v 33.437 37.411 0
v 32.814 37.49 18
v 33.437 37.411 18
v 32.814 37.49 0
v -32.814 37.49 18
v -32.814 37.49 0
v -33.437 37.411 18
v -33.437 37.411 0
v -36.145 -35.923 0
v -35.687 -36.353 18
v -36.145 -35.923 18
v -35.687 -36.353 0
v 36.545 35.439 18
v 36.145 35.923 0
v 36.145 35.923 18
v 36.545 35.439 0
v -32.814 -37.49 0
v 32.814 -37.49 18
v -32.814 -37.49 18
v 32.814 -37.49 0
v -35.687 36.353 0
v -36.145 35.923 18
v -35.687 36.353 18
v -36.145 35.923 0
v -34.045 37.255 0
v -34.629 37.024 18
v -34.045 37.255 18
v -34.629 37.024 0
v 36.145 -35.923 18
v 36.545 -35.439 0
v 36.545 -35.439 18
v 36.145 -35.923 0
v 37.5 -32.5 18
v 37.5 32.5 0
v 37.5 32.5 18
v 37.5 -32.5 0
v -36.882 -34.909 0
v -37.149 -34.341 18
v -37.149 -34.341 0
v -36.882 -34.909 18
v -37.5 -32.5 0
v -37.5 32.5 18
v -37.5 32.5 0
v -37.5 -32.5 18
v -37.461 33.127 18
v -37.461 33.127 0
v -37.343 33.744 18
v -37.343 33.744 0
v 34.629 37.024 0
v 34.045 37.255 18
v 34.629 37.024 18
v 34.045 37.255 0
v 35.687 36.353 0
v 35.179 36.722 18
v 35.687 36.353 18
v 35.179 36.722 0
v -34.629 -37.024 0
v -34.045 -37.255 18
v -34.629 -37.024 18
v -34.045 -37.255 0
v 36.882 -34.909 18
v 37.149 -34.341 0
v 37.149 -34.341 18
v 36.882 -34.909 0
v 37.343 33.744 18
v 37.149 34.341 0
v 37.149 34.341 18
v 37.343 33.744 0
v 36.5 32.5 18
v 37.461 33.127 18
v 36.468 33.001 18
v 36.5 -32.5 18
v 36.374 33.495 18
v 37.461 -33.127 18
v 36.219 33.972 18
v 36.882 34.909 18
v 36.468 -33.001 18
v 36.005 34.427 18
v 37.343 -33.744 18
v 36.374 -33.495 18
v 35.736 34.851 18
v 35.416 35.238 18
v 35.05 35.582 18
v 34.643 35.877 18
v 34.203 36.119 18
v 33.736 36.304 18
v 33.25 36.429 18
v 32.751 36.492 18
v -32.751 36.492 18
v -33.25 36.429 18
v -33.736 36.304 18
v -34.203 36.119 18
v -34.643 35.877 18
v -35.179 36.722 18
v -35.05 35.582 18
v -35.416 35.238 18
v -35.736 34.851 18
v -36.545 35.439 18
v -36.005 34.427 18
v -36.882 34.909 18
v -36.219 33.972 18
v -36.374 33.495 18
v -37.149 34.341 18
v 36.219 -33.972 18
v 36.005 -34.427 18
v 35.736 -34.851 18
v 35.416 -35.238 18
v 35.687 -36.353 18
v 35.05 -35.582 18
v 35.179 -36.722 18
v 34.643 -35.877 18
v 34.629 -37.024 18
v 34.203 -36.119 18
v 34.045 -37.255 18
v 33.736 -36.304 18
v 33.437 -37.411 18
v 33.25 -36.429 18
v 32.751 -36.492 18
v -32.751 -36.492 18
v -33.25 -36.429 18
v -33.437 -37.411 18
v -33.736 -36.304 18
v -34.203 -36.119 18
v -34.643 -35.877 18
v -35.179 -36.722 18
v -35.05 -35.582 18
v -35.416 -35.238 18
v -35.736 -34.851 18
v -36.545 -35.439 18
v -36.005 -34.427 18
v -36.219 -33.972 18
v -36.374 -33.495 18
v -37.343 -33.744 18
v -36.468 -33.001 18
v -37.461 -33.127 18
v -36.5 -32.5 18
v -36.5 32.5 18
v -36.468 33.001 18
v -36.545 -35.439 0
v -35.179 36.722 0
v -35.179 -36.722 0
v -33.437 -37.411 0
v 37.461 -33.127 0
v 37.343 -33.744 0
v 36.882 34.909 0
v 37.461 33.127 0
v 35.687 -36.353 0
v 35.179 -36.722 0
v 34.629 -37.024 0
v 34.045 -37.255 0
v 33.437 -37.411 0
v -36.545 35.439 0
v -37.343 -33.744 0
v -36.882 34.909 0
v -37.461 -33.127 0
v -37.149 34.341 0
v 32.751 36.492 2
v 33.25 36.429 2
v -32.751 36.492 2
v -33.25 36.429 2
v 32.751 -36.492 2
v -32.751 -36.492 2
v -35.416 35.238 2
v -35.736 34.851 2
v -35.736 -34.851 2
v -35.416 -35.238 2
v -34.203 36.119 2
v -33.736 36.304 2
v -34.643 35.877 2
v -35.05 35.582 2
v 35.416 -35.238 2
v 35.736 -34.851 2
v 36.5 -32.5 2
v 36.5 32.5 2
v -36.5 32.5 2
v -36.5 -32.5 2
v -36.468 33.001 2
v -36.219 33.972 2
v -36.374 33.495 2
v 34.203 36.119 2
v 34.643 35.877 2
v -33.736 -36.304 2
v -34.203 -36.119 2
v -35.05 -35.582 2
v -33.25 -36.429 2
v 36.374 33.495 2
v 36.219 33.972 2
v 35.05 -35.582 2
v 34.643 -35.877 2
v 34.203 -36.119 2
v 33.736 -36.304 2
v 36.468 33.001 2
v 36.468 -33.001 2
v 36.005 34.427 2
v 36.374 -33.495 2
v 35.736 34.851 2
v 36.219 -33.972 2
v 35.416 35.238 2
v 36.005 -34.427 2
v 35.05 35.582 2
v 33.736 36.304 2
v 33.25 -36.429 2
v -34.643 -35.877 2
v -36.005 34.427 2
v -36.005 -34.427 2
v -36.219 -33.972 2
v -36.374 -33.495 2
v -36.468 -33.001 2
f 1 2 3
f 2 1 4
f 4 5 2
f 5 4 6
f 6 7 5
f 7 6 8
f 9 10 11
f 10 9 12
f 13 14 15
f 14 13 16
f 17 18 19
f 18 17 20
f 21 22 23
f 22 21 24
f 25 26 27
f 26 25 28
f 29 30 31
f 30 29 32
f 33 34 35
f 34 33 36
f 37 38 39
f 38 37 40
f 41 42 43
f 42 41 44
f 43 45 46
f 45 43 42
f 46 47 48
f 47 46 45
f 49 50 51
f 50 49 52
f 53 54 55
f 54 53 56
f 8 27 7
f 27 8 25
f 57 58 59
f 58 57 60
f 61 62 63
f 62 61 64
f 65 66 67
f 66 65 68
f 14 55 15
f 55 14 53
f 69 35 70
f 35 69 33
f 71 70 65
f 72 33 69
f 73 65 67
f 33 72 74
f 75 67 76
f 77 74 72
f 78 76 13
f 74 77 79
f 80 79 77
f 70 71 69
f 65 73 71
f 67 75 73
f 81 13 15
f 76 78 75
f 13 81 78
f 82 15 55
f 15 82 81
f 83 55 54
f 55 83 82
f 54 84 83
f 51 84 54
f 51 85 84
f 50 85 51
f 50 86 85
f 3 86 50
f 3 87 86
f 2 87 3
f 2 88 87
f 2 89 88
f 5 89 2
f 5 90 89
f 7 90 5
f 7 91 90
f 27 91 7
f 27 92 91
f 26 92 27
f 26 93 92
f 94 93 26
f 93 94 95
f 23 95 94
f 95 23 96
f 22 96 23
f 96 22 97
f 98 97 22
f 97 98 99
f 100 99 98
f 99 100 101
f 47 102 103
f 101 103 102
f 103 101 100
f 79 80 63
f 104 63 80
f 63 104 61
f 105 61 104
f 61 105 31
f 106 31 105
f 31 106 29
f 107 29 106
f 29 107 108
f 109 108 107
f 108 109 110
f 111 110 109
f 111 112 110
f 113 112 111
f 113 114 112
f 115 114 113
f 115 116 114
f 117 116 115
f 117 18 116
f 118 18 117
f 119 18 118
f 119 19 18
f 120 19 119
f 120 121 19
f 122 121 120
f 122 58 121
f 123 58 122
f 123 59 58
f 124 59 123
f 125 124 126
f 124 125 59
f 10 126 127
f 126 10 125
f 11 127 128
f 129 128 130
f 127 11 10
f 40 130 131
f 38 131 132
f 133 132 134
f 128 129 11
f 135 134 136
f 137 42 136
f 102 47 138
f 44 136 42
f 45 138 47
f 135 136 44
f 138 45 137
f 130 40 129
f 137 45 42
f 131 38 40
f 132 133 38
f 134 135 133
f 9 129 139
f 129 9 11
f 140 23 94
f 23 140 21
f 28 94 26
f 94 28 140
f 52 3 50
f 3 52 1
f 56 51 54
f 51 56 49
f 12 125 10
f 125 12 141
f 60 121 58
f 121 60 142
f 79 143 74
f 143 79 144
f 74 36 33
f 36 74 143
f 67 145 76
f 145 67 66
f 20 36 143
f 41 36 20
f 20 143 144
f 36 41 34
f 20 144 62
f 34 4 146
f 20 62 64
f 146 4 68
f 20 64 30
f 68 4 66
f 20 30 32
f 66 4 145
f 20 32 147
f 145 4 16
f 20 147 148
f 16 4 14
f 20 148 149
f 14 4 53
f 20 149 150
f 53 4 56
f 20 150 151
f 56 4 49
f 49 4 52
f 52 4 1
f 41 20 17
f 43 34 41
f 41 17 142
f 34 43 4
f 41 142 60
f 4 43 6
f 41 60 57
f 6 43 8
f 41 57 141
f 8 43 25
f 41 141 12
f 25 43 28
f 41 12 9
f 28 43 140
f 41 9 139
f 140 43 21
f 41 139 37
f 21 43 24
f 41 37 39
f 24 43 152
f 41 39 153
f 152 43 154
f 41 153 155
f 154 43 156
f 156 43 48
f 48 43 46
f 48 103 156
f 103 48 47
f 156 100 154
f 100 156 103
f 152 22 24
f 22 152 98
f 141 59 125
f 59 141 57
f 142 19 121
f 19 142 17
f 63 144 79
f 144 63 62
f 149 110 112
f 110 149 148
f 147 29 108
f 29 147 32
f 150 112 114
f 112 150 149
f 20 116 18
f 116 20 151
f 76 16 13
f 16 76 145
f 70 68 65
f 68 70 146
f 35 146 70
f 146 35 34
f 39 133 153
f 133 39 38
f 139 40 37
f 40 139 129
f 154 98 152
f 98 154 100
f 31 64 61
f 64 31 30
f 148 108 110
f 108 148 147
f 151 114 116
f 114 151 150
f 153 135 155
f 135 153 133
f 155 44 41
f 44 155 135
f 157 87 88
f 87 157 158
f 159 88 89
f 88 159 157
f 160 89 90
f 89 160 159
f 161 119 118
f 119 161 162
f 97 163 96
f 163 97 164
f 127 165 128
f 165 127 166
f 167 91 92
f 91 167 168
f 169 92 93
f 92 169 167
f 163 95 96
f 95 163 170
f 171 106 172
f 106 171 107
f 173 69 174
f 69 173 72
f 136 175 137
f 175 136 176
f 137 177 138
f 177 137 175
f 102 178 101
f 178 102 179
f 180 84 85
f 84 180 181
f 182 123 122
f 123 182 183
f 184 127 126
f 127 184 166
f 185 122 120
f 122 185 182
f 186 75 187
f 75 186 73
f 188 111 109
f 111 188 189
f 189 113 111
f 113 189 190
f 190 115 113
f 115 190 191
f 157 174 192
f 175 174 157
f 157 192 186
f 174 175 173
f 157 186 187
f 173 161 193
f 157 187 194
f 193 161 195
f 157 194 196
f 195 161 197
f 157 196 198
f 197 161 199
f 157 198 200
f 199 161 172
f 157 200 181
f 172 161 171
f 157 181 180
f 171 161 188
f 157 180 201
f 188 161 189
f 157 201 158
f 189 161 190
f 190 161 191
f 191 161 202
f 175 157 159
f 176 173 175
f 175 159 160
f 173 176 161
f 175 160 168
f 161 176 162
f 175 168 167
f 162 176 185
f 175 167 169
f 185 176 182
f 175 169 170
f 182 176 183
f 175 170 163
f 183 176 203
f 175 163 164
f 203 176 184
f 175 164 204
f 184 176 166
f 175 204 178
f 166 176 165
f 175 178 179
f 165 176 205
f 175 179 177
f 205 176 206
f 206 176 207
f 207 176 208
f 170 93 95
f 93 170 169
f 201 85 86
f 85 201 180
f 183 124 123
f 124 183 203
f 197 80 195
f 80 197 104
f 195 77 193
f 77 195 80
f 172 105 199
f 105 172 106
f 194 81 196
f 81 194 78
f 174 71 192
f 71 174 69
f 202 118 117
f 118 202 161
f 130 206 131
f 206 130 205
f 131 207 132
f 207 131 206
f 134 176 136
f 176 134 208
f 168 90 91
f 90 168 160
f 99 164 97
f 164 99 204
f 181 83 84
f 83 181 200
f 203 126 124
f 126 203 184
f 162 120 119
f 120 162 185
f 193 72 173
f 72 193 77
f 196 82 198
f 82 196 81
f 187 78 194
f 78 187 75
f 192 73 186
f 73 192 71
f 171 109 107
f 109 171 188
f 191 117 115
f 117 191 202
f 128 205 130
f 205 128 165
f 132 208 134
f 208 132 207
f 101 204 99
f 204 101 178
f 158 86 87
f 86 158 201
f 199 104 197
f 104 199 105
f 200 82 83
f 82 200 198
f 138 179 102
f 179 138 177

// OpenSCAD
$fn = 50;


difference() {
	union() {
		hull() {
			translate(v = [-32.5000000000, 32.5000000000, 0]) {
				cylinder(h = 18, r = 5);
			}
			translate(v = [32.5000000000, 32.5000000000, 0]) {
				cylinder(h = 18, r = 5);
			}
			translate(v = [-32.5000000000, -32.5000000000, 0]) {
				cylinder(h = 18, r = 5);
			}
			translate(v = [32.5000000000, -32.5000000000, 0]) {
				cylinder(h = 18, r = 5);
			}
		}
	}
	union() {
		translate(v = [0, 0, 2]) {
			hull() {
				translate(v = [-32.5000000000, 32.5000000000, 0]) {
					cylinder(h = 16, r = 4);
				}
				translate(v = [32.5000000000, 32.5000000000, 0]) {
					cylinder(h = 16, r = 4);
				}
				translate(v = [-32.5000000000, -32.5000000000, 0]) {
					cylinder(h = 16, r = 4);
				}
				translate(v = [32.5000000000, -32.5000000000, 0]) {
					cylinder(h = 16, r = 4);
				}
			}
		}
	}
}
